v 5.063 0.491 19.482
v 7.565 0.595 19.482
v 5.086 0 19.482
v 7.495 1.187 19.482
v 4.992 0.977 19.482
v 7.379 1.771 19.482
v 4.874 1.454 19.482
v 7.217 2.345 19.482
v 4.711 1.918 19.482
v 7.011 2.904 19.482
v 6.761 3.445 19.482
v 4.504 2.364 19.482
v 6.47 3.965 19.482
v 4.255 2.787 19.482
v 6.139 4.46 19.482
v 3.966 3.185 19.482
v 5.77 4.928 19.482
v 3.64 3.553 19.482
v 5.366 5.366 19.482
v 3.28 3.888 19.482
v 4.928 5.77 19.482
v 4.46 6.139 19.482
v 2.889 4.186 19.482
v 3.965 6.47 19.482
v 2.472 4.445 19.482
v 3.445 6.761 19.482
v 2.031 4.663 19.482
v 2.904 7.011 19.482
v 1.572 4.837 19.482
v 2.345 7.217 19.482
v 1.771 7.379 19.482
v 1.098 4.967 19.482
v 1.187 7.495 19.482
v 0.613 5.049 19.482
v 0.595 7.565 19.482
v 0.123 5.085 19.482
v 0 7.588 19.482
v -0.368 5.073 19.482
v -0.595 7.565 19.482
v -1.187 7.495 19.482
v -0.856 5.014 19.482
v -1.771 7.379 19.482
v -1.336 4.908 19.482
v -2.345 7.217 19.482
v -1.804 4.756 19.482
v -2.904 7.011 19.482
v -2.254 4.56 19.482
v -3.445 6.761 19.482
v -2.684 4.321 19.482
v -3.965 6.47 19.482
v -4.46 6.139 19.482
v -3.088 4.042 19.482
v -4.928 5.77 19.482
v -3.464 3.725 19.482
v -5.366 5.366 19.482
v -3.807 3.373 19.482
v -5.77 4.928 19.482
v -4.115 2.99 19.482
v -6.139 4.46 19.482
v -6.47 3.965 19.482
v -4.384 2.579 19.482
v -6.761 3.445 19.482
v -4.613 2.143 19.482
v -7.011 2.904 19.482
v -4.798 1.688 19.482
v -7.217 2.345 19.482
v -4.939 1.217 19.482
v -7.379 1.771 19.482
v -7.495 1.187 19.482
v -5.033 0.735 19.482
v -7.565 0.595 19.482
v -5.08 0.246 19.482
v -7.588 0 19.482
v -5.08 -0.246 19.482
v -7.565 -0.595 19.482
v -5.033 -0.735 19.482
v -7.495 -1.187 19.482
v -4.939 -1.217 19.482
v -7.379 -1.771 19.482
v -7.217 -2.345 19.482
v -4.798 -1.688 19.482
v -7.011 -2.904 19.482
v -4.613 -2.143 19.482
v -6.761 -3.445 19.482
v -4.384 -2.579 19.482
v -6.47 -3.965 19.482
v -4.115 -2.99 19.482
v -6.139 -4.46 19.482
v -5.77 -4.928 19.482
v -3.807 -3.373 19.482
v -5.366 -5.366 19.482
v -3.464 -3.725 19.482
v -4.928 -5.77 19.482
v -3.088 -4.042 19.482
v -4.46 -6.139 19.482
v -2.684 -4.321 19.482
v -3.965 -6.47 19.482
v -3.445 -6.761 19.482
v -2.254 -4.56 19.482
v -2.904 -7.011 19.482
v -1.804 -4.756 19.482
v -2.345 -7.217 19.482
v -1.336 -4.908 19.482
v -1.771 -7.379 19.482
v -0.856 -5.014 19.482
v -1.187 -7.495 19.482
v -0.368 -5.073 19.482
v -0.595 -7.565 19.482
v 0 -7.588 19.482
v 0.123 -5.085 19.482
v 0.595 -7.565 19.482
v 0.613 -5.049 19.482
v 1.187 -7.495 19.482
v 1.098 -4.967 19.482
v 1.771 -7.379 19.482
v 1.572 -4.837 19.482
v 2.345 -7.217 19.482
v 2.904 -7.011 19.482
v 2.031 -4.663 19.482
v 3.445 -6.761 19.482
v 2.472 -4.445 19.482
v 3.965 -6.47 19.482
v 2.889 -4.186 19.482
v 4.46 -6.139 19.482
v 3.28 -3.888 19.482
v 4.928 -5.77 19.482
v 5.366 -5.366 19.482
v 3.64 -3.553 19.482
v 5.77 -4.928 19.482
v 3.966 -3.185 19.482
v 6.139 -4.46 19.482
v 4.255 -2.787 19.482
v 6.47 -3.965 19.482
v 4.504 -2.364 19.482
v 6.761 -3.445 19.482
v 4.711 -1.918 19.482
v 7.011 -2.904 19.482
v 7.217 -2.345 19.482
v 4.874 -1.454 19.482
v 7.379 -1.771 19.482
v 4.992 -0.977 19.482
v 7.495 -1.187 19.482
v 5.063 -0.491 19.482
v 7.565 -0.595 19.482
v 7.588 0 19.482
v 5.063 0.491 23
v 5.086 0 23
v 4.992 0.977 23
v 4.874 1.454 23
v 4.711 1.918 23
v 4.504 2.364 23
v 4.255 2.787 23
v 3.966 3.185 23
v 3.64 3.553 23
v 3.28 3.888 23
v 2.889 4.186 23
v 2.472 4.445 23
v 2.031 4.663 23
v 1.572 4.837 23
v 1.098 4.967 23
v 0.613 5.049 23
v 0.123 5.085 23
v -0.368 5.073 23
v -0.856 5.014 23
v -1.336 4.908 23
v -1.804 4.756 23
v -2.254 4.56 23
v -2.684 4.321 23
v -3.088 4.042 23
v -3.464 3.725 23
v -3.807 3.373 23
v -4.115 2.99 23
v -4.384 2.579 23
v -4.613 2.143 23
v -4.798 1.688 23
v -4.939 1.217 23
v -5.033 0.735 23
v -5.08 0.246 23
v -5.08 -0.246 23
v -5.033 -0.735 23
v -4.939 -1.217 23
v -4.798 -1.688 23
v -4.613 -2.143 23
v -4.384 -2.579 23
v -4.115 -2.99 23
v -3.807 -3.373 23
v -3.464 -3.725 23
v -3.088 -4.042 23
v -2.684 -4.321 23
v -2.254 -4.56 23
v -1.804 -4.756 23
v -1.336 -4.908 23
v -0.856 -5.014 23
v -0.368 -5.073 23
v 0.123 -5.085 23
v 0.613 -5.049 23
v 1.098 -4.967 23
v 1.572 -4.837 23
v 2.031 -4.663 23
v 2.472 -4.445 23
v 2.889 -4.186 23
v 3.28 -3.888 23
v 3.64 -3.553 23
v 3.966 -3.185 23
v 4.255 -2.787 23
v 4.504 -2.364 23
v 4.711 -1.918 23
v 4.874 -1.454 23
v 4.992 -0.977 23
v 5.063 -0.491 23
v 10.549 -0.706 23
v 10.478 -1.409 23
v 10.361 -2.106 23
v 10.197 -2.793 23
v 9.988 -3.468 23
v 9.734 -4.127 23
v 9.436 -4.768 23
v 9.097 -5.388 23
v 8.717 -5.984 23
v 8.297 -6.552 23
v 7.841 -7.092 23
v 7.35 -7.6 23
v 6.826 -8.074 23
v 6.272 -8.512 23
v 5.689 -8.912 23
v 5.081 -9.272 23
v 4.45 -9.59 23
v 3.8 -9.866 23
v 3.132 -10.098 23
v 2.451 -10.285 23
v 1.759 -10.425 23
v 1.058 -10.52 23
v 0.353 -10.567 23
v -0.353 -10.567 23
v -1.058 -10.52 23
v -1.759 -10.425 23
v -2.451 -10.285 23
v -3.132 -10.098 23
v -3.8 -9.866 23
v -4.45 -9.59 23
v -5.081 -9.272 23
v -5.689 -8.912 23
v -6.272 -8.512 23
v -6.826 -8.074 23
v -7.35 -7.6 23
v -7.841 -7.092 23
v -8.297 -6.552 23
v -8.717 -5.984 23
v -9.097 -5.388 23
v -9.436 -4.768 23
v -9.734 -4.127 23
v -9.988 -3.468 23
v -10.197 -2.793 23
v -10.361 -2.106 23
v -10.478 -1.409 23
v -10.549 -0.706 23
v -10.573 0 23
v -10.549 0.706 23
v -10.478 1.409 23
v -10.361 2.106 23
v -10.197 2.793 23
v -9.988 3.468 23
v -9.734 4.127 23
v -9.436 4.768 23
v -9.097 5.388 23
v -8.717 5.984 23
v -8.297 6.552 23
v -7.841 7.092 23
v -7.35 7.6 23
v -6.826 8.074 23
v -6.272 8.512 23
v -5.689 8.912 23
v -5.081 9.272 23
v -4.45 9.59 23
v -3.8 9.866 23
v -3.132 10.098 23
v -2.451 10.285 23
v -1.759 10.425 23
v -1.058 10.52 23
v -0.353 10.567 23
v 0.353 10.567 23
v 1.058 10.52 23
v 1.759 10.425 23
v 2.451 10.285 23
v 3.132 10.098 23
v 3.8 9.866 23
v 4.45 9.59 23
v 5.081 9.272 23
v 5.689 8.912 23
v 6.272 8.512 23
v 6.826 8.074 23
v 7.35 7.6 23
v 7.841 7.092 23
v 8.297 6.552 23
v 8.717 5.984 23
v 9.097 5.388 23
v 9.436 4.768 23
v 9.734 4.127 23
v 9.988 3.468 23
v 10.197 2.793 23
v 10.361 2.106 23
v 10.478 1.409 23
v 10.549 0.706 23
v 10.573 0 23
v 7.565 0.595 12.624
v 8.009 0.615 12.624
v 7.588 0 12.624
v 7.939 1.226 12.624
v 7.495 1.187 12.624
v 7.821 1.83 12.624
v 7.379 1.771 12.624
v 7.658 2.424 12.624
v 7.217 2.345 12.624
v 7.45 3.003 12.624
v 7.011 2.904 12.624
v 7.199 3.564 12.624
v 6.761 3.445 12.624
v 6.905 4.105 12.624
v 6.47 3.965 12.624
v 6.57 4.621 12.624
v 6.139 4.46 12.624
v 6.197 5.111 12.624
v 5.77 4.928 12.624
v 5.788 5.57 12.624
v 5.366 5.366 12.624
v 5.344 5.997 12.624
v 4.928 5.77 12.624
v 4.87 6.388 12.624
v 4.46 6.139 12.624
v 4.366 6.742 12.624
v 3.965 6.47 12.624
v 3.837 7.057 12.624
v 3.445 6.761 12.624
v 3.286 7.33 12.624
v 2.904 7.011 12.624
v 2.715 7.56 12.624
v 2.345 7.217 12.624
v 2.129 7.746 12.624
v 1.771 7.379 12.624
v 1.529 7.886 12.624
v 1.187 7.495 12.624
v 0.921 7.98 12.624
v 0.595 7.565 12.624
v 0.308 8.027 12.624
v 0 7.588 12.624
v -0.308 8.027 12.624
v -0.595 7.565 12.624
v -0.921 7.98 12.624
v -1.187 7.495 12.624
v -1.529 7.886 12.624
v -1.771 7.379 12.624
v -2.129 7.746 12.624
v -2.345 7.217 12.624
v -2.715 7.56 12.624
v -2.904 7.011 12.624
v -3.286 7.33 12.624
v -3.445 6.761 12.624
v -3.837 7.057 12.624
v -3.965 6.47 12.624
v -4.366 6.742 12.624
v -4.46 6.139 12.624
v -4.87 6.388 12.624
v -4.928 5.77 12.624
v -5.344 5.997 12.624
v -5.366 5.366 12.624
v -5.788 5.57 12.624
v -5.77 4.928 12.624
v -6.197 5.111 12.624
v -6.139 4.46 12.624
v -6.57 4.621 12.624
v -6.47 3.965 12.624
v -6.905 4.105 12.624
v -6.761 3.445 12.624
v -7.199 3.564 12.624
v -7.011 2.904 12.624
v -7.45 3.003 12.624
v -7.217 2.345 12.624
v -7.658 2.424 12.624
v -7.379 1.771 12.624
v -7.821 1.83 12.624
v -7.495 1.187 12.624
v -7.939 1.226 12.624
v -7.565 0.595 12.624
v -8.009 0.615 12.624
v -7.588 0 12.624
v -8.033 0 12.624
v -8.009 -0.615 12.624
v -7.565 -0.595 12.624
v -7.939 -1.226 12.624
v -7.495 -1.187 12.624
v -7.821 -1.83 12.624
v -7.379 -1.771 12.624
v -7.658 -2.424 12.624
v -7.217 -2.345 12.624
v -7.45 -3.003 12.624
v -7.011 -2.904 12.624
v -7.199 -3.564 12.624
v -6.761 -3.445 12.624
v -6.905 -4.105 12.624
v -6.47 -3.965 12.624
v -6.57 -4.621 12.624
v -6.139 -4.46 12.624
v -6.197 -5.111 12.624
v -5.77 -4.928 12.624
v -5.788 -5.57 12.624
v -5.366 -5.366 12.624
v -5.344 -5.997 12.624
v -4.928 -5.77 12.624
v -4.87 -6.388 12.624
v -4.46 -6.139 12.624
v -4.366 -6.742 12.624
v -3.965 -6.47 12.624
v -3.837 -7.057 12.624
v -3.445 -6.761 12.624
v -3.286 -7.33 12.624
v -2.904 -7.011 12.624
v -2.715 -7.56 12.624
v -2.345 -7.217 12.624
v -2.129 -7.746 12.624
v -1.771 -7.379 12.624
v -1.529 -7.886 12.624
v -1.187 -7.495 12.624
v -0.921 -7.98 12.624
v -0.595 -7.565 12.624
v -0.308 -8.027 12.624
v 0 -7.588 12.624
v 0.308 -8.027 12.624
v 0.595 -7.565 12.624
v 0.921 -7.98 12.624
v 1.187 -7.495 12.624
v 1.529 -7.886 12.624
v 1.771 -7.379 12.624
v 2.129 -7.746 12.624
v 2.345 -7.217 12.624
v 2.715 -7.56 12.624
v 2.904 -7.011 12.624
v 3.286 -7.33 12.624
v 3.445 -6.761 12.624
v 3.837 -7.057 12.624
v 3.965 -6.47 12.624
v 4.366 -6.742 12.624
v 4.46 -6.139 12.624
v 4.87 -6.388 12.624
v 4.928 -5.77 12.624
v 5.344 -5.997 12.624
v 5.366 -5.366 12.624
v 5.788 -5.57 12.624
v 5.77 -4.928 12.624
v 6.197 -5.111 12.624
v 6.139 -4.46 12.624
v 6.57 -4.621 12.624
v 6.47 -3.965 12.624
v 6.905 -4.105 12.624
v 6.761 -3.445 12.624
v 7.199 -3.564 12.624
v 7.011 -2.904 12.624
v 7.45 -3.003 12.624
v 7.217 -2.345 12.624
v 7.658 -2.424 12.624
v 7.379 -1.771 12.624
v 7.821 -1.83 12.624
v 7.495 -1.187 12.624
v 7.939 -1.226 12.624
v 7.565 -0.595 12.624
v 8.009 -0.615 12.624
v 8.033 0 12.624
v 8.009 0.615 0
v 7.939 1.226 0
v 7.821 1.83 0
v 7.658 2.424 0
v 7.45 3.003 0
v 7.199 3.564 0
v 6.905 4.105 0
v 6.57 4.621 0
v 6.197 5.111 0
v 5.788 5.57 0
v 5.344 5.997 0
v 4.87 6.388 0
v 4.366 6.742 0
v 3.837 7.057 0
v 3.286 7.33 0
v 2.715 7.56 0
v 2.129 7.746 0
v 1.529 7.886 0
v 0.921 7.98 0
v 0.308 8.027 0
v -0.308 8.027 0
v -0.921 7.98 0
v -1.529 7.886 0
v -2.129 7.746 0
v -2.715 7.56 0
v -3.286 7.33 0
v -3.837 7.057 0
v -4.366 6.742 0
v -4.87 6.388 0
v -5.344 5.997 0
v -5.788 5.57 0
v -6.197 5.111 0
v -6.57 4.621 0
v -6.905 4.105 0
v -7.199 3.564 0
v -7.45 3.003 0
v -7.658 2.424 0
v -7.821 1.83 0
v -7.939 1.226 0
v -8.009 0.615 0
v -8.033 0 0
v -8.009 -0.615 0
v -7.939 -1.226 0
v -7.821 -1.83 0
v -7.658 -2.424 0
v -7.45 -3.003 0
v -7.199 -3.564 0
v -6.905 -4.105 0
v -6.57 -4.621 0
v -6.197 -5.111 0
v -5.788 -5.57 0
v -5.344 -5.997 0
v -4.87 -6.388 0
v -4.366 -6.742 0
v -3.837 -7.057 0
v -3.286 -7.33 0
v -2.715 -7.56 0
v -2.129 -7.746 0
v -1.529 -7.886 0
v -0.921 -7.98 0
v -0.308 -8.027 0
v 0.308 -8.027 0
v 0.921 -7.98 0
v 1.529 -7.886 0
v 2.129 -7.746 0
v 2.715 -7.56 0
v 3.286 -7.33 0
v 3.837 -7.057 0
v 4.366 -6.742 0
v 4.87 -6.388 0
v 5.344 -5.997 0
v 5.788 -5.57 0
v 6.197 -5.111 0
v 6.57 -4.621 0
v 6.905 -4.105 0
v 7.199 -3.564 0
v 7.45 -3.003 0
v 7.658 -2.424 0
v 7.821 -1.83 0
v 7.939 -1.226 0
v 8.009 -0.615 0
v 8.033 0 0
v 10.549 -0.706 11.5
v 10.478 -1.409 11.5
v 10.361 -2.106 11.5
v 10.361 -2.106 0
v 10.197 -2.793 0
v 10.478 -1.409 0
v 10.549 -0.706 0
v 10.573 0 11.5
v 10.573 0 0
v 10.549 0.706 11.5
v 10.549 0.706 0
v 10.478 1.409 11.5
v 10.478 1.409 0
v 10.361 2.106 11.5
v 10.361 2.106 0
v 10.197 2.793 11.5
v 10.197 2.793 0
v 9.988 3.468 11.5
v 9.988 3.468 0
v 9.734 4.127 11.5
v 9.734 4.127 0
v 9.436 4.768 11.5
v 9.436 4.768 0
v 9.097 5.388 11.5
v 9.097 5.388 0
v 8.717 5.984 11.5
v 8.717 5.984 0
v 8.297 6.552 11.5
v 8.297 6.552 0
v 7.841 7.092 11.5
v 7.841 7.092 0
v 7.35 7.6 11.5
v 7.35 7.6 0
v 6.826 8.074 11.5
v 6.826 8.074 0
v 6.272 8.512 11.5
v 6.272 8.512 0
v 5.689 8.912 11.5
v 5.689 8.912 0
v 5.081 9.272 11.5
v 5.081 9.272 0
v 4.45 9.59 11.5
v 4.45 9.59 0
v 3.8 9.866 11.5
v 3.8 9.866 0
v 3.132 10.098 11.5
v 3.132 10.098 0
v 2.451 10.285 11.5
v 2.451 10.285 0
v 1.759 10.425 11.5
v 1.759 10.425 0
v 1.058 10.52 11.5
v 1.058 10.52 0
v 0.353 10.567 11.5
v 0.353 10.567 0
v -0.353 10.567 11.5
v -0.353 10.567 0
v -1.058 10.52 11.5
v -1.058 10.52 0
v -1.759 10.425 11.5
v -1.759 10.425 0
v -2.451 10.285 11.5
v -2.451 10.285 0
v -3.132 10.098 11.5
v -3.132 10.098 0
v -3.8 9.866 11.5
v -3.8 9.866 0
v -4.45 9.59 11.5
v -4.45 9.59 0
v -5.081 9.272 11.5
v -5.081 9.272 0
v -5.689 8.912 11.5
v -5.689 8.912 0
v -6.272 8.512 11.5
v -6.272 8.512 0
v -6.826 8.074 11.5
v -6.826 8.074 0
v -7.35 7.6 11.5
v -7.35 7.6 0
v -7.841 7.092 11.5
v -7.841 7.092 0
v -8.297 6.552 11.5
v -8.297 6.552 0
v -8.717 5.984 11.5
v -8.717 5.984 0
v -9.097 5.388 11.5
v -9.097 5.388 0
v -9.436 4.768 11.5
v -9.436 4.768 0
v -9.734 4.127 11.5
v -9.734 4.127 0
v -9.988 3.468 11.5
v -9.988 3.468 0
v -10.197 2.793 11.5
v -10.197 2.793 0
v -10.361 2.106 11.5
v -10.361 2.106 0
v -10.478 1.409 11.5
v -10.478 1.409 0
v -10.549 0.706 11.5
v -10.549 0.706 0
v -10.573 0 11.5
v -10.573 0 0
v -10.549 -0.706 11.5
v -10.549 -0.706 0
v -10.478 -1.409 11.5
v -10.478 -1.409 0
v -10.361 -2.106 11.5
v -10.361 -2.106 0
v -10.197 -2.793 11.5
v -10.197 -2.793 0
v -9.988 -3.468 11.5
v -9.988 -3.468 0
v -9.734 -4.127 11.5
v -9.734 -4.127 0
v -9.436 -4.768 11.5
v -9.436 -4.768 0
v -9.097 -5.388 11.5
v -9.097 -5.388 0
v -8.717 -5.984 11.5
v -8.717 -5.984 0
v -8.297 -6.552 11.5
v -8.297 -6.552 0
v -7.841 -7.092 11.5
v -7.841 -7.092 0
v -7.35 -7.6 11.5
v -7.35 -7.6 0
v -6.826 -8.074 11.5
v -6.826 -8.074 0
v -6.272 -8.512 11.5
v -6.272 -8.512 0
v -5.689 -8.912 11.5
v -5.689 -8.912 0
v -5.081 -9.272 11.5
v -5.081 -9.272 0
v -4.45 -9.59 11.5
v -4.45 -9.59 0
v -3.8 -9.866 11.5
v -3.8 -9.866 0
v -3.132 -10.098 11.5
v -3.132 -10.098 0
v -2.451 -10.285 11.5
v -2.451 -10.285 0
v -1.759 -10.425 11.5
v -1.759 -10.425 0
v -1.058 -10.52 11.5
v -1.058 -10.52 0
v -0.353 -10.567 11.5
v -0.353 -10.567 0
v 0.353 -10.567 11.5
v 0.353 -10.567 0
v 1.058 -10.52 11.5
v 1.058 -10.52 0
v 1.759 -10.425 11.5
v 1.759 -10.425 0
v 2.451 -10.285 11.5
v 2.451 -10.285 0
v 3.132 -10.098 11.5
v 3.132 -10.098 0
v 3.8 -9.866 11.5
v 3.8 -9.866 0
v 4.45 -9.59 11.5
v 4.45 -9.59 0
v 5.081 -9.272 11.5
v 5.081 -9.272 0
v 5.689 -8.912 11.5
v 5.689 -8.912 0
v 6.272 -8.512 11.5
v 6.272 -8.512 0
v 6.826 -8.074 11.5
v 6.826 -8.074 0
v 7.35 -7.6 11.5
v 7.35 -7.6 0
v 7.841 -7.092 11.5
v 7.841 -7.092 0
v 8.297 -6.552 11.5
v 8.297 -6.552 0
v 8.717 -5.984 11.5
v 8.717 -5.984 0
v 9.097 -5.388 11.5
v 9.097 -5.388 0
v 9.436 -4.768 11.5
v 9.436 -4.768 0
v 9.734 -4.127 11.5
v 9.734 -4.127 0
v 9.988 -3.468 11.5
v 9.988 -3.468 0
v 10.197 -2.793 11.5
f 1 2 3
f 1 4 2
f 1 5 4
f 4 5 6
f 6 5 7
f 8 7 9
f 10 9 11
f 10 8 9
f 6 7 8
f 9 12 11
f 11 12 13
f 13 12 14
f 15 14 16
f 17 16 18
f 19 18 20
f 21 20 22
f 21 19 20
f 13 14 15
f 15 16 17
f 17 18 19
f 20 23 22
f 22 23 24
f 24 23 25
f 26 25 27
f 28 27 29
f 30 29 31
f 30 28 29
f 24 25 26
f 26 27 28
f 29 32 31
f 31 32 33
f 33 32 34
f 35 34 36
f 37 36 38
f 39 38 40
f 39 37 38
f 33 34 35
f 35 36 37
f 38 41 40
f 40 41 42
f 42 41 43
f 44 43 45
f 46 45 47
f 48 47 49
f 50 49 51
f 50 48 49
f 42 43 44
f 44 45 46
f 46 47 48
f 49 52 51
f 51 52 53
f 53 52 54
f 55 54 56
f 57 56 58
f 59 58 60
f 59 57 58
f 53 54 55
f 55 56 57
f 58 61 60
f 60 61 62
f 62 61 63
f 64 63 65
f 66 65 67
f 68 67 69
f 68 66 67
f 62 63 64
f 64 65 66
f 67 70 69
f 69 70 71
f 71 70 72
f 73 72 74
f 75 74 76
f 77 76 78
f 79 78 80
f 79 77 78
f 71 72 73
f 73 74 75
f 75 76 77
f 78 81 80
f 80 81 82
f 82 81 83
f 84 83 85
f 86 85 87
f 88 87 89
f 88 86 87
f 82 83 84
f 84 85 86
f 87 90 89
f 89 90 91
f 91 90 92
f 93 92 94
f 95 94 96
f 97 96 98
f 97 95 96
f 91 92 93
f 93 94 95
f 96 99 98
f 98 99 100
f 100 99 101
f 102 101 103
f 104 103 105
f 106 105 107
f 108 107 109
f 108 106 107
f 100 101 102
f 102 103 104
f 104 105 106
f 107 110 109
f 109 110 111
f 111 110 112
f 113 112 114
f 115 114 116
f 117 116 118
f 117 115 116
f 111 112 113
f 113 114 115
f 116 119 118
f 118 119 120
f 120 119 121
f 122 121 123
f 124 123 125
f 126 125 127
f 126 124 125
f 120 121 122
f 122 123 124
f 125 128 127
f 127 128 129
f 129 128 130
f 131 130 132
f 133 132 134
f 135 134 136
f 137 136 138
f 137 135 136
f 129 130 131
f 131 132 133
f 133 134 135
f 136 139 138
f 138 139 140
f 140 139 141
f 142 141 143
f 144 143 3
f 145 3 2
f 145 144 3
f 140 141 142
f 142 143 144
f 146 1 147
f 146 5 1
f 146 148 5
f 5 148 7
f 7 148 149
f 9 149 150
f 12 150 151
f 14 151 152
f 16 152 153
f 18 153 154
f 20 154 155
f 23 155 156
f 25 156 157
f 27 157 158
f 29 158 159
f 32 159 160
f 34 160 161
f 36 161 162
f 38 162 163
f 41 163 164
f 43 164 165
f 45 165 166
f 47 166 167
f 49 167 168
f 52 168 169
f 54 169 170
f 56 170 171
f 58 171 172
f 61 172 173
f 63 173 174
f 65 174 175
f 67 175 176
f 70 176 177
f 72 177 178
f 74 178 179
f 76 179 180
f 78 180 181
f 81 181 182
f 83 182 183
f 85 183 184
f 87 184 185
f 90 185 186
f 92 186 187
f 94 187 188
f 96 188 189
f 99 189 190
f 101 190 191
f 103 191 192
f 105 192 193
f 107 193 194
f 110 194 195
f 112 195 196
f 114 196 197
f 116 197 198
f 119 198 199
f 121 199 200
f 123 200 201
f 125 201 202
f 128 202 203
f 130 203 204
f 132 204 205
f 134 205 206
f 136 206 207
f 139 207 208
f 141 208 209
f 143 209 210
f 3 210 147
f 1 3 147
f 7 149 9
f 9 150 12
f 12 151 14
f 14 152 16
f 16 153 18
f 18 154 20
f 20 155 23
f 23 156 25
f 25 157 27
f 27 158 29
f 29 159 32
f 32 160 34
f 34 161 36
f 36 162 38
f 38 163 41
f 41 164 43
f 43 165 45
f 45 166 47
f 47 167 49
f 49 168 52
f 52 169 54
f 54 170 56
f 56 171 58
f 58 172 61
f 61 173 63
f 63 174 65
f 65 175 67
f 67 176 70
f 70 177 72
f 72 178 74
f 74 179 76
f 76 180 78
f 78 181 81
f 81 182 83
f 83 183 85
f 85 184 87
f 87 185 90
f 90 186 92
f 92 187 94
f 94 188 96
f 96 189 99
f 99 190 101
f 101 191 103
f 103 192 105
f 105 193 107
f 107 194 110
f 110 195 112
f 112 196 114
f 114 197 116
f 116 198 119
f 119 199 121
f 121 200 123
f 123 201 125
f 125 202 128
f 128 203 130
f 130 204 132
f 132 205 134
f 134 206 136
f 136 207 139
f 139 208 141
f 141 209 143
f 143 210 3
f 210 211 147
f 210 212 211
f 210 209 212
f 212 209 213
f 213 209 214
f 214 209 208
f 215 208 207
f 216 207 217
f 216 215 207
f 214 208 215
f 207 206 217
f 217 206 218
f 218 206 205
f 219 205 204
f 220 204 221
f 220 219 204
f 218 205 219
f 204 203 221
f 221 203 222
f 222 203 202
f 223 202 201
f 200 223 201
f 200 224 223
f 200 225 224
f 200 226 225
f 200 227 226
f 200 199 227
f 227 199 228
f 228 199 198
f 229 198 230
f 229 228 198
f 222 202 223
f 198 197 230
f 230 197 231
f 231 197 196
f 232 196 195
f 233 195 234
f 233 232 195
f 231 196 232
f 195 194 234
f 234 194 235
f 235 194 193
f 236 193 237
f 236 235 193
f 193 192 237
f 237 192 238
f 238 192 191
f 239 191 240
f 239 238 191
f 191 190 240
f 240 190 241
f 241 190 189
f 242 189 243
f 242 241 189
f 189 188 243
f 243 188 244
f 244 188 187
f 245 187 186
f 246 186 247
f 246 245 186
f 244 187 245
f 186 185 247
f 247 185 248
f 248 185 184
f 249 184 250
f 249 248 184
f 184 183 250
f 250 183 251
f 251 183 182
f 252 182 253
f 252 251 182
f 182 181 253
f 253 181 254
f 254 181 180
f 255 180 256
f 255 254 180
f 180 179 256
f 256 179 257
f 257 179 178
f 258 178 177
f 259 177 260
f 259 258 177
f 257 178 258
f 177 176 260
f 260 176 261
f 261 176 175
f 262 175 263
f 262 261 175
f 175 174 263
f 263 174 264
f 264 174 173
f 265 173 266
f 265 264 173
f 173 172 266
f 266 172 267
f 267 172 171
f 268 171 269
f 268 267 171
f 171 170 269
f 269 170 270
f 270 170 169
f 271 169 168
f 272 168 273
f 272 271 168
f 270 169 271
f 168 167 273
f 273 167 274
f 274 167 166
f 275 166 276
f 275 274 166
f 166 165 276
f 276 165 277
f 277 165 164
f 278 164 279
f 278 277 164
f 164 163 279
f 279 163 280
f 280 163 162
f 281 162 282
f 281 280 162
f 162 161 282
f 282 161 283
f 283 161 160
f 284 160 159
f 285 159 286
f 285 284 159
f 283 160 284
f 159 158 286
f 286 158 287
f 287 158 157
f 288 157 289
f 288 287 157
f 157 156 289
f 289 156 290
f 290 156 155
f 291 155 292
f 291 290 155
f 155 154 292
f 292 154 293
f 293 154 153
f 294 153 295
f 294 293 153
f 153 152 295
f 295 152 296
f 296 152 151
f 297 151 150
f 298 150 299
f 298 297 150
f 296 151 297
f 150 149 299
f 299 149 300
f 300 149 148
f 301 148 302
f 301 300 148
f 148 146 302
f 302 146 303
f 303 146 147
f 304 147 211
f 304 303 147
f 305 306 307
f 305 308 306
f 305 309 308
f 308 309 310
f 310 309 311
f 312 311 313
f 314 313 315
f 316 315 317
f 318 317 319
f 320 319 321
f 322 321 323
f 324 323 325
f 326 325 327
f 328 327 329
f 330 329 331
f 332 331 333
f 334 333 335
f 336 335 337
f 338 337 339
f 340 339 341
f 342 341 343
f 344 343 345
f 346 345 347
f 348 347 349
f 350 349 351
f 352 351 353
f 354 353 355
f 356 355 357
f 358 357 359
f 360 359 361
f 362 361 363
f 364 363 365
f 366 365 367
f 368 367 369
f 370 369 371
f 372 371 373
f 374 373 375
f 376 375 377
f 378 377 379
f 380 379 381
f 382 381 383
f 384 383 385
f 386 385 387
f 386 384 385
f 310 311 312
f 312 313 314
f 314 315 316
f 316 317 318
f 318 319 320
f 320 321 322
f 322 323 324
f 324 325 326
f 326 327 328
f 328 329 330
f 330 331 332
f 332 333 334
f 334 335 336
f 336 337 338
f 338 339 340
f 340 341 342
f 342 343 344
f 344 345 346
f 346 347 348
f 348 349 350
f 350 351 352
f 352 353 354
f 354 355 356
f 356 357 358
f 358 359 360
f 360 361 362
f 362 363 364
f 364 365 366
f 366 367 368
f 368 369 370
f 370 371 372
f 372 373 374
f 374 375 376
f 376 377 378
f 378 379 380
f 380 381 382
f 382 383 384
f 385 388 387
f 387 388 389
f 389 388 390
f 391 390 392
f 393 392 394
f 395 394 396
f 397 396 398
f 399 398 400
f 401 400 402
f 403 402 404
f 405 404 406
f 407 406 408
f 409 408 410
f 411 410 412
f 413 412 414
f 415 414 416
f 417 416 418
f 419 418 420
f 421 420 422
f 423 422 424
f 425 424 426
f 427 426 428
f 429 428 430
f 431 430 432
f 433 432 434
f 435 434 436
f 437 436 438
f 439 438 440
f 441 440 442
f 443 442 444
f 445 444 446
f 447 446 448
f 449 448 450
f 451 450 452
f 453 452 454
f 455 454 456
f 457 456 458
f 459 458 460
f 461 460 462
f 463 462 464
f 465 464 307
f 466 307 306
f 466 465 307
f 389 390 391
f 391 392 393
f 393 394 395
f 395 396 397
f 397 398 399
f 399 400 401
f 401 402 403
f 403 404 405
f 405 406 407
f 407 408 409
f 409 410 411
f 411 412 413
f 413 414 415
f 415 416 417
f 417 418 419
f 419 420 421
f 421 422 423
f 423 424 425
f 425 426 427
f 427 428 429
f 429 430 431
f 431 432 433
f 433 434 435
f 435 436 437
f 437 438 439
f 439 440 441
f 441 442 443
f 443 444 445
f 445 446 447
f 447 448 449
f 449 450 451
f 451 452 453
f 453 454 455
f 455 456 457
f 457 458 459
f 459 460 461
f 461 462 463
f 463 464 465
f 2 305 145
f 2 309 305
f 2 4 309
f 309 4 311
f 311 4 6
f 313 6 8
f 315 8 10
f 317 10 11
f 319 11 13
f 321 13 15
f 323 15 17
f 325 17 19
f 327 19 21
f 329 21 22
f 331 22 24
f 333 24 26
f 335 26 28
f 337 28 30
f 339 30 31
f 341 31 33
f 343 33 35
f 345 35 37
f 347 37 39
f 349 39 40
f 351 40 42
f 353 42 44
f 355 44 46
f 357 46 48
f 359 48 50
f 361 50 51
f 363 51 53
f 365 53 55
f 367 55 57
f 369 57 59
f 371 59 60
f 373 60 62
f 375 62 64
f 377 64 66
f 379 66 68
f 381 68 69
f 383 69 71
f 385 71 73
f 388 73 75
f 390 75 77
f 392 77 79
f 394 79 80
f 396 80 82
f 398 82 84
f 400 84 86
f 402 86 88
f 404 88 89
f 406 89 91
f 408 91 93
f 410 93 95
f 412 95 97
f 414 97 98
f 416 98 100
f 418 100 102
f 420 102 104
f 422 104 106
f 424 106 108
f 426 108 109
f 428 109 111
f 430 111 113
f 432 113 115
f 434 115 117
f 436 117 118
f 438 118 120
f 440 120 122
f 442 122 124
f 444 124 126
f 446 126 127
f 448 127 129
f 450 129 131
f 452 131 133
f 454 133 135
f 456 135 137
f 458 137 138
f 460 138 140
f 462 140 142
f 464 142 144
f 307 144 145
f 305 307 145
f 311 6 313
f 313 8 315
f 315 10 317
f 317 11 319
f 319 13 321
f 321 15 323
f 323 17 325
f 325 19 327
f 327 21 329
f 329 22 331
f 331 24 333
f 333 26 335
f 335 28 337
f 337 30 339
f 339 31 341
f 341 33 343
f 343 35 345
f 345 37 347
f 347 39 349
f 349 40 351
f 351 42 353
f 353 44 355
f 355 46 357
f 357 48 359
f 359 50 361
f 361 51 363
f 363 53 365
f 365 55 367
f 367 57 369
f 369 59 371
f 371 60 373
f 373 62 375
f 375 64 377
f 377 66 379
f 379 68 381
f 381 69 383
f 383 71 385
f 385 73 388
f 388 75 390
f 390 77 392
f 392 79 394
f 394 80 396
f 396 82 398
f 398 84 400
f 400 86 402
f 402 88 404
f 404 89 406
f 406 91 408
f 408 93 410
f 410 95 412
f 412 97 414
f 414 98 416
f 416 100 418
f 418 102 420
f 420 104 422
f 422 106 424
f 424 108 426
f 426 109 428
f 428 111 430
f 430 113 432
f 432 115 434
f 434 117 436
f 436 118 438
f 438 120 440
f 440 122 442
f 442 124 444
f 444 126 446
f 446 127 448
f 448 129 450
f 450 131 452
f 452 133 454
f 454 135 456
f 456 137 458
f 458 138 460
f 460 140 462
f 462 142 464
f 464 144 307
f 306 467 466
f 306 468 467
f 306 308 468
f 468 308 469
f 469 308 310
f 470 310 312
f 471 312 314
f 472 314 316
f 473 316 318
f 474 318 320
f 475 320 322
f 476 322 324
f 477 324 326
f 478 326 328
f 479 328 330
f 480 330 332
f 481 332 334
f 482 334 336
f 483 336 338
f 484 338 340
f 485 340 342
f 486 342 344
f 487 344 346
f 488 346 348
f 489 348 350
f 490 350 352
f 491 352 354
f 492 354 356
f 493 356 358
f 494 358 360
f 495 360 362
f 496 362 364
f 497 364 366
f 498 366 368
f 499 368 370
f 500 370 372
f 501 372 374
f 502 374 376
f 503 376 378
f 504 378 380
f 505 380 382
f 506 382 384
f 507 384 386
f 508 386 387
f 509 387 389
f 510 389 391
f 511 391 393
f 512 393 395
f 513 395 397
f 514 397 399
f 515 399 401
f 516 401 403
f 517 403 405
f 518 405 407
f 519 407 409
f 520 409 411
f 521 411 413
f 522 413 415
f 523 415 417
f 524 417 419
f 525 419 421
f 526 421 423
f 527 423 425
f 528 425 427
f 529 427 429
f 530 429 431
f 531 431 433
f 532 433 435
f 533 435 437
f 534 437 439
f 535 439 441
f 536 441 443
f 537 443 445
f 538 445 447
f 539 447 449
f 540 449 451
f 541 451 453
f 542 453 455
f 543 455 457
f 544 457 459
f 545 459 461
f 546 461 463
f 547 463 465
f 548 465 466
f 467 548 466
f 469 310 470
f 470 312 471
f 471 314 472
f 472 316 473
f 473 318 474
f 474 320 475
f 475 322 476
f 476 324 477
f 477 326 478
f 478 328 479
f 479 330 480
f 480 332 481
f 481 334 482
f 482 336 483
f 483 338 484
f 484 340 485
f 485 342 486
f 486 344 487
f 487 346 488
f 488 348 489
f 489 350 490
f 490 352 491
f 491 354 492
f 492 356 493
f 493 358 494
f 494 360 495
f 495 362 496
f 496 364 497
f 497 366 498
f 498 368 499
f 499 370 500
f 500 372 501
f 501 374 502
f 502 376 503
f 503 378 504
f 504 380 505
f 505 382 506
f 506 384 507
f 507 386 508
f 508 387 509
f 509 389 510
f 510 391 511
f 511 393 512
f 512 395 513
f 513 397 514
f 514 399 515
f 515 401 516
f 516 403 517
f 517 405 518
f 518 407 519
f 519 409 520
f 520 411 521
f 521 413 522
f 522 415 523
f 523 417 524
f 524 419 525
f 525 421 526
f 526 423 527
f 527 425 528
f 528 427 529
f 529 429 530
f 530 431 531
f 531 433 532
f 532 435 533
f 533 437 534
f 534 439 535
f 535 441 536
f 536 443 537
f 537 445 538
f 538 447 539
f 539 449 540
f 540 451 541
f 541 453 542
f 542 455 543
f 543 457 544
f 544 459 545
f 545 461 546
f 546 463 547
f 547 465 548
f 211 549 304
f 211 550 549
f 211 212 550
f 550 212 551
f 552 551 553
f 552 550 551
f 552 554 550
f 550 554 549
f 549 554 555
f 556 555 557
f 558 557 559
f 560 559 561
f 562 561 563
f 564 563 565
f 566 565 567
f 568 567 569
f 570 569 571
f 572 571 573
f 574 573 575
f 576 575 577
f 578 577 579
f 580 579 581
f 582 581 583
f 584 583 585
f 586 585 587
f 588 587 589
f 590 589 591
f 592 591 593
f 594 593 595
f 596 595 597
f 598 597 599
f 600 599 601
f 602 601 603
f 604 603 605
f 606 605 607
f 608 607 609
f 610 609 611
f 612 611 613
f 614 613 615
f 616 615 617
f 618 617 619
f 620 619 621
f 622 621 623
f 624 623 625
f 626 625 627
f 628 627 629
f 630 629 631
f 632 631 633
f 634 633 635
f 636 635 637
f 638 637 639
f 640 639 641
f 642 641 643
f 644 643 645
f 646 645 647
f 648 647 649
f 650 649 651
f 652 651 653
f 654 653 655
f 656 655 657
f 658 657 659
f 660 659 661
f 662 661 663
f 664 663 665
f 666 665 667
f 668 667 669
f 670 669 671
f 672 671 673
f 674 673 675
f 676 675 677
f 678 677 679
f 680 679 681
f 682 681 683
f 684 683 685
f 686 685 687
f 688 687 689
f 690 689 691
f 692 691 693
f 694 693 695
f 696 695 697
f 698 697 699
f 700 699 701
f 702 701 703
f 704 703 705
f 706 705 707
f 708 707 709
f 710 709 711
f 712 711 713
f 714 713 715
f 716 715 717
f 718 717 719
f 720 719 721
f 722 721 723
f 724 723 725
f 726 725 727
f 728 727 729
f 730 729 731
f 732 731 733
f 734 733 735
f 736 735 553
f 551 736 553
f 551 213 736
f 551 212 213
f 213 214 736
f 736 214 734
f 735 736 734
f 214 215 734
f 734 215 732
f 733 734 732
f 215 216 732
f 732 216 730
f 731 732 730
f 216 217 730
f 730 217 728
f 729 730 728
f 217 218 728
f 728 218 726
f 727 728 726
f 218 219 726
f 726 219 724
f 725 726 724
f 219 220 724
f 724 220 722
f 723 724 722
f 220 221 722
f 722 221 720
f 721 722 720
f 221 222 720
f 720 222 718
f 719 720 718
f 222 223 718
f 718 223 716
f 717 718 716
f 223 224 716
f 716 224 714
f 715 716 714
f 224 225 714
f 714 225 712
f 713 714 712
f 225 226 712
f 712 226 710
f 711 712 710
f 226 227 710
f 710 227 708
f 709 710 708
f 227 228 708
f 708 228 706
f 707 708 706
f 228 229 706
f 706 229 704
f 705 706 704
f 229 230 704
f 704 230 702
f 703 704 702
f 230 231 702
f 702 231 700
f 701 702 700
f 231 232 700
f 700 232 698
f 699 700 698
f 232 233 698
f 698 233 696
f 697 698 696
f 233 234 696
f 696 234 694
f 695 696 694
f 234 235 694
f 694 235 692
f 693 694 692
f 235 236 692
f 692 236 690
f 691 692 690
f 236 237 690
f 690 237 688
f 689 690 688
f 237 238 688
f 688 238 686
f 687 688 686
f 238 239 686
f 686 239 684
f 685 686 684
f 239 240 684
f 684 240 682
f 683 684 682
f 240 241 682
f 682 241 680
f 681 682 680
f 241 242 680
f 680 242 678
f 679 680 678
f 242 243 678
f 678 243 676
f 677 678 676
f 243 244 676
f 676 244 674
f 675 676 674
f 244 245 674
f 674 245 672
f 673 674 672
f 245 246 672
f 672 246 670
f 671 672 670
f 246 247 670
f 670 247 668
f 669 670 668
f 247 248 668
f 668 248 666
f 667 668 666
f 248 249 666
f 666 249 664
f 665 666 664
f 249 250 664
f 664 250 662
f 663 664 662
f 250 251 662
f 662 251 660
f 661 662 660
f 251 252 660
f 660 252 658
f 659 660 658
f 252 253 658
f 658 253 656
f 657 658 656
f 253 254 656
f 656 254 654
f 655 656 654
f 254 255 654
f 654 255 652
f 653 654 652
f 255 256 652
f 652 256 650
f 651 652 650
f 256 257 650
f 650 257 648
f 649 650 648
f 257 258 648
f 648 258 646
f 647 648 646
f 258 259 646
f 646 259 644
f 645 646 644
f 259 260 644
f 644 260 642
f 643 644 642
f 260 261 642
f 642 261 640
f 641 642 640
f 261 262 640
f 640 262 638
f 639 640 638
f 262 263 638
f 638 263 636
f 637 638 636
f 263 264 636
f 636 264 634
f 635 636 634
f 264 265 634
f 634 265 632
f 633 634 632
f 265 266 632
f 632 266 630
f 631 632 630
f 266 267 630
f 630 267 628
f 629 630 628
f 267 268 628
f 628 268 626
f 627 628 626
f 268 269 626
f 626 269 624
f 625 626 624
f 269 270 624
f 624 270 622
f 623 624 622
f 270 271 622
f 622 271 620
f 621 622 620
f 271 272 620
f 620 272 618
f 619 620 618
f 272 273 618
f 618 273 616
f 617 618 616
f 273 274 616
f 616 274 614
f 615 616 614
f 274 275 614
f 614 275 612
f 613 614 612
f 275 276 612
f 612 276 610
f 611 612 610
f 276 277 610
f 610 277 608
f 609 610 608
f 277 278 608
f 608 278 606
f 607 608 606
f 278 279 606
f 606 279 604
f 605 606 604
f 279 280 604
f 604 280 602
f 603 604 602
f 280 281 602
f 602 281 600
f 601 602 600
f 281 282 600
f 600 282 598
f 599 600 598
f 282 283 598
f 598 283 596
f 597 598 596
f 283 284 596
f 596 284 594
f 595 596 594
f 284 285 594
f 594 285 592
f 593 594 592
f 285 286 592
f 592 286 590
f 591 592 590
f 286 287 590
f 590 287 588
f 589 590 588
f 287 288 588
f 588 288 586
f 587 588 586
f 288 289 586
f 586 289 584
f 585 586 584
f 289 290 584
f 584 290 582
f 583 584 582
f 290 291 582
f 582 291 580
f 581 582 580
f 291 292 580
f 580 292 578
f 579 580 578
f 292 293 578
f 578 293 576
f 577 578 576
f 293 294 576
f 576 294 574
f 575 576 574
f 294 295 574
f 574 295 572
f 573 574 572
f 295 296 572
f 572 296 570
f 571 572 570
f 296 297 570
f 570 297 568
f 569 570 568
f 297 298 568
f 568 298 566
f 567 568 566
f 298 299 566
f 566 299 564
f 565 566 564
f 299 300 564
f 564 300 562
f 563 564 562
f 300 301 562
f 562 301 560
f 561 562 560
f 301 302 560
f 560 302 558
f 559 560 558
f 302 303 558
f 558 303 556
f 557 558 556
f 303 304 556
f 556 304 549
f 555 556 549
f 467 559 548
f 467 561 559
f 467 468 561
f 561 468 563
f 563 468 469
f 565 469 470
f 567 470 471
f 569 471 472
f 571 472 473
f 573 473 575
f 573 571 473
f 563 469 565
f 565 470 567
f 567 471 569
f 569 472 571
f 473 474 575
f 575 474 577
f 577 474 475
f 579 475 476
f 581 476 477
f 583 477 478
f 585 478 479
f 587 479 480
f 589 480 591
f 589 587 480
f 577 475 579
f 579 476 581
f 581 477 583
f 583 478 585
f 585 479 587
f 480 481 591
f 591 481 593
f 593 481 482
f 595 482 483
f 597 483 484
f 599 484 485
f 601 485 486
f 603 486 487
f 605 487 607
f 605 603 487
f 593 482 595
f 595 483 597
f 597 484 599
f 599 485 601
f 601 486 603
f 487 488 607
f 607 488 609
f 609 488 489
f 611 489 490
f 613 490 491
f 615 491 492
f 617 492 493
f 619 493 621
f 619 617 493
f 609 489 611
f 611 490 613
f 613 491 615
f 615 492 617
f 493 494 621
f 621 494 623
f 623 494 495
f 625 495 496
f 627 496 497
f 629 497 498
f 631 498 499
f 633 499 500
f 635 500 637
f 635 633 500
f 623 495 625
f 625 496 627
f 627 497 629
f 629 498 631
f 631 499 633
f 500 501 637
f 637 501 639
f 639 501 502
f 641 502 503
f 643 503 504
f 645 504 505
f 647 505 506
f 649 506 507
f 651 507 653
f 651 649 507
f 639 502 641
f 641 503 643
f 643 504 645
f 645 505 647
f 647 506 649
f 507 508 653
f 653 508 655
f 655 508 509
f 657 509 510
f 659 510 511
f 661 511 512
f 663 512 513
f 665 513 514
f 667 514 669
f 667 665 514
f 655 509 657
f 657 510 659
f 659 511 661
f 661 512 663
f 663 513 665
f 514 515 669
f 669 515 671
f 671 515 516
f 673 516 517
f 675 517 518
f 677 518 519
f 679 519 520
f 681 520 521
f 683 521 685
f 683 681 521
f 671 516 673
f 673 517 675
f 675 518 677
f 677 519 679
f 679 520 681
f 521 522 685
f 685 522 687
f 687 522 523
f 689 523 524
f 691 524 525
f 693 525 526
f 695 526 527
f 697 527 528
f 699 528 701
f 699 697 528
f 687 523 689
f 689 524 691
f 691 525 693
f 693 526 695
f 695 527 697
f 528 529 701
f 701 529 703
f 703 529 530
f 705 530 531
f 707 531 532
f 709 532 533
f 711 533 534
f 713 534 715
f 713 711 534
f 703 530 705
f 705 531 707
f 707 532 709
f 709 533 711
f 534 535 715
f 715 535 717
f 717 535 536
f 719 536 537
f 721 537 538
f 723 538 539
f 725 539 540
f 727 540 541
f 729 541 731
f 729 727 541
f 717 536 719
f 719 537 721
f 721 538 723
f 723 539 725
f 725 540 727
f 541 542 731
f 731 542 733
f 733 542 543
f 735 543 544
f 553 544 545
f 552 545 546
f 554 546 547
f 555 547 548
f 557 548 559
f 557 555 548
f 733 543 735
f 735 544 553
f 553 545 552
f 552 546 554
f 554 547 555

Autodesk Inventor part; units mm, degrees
ref_plane "YZ Plane" through (0, 0, 0) normal (1, 0, 0) x (0, 1, 0)
ref_plane "XZ Plane" through (0, 0, 0) normal (0, 1, 0) x (-1, 0, 0)
ref_plane "XY Plane" through (0, 0, 0) normal (0, 0, 1) x (1, 0, 0)
sketch "Sketch1" plane through (0, 0, 0) normal (0, 0, 1) x (1, 0, 0)
  circle A0 centre (0, 0) radius 8.0328
  circle A1 centre (0, 0) radius 10.5727
  dimension "d0" = 16.0655
  dimension "d3" = 2.54
extrude "Extrusion1" add sketch "Sketch1" along normal blind 6.35
sketch "Sketch3" plane through (0, 0, 6.35) normal (0, 0, 1) x (1, 0, 0)
  circle A0 centre (0, 0) radius 10.5727 projected
  circle A1 centre (0, 0) radius 10.5727
  circle A2 centre (0, 0) radius 8.0328
  circle A3 centre (0, 0) radius 8.0328 projected
extrude "Extrusion2" add sketch "Sketch3" along normal blind 6.2738
sketch "Sketch7" plane through (0, 0, 12.6238) normal (0, 0, 1) x (1, 0, 0)
  circle A0 centre (0, 0) radius 10.5727 projected
  circle A1 centre (0, 0) radius 7.5882
  dimension "d12" = 15.1765
extrude "Extrusion4" add sketch "Sketch7" along normal blind 6.858
sketch "Sketch8" plane through (0, 0, 19.4818) normal (0, 0, 1) x (1, 0, 0)
  circle A0 centre (0, 0) radius 10.5727 projected
  circle A1 centre (0, 0) radius 5.0864
  dimension "d15" = 10.1727
extrude "Extrusion5" add sketch "Sketch8" along normal blind 3.5179
properties part number "Magnet to Igus adapter"
